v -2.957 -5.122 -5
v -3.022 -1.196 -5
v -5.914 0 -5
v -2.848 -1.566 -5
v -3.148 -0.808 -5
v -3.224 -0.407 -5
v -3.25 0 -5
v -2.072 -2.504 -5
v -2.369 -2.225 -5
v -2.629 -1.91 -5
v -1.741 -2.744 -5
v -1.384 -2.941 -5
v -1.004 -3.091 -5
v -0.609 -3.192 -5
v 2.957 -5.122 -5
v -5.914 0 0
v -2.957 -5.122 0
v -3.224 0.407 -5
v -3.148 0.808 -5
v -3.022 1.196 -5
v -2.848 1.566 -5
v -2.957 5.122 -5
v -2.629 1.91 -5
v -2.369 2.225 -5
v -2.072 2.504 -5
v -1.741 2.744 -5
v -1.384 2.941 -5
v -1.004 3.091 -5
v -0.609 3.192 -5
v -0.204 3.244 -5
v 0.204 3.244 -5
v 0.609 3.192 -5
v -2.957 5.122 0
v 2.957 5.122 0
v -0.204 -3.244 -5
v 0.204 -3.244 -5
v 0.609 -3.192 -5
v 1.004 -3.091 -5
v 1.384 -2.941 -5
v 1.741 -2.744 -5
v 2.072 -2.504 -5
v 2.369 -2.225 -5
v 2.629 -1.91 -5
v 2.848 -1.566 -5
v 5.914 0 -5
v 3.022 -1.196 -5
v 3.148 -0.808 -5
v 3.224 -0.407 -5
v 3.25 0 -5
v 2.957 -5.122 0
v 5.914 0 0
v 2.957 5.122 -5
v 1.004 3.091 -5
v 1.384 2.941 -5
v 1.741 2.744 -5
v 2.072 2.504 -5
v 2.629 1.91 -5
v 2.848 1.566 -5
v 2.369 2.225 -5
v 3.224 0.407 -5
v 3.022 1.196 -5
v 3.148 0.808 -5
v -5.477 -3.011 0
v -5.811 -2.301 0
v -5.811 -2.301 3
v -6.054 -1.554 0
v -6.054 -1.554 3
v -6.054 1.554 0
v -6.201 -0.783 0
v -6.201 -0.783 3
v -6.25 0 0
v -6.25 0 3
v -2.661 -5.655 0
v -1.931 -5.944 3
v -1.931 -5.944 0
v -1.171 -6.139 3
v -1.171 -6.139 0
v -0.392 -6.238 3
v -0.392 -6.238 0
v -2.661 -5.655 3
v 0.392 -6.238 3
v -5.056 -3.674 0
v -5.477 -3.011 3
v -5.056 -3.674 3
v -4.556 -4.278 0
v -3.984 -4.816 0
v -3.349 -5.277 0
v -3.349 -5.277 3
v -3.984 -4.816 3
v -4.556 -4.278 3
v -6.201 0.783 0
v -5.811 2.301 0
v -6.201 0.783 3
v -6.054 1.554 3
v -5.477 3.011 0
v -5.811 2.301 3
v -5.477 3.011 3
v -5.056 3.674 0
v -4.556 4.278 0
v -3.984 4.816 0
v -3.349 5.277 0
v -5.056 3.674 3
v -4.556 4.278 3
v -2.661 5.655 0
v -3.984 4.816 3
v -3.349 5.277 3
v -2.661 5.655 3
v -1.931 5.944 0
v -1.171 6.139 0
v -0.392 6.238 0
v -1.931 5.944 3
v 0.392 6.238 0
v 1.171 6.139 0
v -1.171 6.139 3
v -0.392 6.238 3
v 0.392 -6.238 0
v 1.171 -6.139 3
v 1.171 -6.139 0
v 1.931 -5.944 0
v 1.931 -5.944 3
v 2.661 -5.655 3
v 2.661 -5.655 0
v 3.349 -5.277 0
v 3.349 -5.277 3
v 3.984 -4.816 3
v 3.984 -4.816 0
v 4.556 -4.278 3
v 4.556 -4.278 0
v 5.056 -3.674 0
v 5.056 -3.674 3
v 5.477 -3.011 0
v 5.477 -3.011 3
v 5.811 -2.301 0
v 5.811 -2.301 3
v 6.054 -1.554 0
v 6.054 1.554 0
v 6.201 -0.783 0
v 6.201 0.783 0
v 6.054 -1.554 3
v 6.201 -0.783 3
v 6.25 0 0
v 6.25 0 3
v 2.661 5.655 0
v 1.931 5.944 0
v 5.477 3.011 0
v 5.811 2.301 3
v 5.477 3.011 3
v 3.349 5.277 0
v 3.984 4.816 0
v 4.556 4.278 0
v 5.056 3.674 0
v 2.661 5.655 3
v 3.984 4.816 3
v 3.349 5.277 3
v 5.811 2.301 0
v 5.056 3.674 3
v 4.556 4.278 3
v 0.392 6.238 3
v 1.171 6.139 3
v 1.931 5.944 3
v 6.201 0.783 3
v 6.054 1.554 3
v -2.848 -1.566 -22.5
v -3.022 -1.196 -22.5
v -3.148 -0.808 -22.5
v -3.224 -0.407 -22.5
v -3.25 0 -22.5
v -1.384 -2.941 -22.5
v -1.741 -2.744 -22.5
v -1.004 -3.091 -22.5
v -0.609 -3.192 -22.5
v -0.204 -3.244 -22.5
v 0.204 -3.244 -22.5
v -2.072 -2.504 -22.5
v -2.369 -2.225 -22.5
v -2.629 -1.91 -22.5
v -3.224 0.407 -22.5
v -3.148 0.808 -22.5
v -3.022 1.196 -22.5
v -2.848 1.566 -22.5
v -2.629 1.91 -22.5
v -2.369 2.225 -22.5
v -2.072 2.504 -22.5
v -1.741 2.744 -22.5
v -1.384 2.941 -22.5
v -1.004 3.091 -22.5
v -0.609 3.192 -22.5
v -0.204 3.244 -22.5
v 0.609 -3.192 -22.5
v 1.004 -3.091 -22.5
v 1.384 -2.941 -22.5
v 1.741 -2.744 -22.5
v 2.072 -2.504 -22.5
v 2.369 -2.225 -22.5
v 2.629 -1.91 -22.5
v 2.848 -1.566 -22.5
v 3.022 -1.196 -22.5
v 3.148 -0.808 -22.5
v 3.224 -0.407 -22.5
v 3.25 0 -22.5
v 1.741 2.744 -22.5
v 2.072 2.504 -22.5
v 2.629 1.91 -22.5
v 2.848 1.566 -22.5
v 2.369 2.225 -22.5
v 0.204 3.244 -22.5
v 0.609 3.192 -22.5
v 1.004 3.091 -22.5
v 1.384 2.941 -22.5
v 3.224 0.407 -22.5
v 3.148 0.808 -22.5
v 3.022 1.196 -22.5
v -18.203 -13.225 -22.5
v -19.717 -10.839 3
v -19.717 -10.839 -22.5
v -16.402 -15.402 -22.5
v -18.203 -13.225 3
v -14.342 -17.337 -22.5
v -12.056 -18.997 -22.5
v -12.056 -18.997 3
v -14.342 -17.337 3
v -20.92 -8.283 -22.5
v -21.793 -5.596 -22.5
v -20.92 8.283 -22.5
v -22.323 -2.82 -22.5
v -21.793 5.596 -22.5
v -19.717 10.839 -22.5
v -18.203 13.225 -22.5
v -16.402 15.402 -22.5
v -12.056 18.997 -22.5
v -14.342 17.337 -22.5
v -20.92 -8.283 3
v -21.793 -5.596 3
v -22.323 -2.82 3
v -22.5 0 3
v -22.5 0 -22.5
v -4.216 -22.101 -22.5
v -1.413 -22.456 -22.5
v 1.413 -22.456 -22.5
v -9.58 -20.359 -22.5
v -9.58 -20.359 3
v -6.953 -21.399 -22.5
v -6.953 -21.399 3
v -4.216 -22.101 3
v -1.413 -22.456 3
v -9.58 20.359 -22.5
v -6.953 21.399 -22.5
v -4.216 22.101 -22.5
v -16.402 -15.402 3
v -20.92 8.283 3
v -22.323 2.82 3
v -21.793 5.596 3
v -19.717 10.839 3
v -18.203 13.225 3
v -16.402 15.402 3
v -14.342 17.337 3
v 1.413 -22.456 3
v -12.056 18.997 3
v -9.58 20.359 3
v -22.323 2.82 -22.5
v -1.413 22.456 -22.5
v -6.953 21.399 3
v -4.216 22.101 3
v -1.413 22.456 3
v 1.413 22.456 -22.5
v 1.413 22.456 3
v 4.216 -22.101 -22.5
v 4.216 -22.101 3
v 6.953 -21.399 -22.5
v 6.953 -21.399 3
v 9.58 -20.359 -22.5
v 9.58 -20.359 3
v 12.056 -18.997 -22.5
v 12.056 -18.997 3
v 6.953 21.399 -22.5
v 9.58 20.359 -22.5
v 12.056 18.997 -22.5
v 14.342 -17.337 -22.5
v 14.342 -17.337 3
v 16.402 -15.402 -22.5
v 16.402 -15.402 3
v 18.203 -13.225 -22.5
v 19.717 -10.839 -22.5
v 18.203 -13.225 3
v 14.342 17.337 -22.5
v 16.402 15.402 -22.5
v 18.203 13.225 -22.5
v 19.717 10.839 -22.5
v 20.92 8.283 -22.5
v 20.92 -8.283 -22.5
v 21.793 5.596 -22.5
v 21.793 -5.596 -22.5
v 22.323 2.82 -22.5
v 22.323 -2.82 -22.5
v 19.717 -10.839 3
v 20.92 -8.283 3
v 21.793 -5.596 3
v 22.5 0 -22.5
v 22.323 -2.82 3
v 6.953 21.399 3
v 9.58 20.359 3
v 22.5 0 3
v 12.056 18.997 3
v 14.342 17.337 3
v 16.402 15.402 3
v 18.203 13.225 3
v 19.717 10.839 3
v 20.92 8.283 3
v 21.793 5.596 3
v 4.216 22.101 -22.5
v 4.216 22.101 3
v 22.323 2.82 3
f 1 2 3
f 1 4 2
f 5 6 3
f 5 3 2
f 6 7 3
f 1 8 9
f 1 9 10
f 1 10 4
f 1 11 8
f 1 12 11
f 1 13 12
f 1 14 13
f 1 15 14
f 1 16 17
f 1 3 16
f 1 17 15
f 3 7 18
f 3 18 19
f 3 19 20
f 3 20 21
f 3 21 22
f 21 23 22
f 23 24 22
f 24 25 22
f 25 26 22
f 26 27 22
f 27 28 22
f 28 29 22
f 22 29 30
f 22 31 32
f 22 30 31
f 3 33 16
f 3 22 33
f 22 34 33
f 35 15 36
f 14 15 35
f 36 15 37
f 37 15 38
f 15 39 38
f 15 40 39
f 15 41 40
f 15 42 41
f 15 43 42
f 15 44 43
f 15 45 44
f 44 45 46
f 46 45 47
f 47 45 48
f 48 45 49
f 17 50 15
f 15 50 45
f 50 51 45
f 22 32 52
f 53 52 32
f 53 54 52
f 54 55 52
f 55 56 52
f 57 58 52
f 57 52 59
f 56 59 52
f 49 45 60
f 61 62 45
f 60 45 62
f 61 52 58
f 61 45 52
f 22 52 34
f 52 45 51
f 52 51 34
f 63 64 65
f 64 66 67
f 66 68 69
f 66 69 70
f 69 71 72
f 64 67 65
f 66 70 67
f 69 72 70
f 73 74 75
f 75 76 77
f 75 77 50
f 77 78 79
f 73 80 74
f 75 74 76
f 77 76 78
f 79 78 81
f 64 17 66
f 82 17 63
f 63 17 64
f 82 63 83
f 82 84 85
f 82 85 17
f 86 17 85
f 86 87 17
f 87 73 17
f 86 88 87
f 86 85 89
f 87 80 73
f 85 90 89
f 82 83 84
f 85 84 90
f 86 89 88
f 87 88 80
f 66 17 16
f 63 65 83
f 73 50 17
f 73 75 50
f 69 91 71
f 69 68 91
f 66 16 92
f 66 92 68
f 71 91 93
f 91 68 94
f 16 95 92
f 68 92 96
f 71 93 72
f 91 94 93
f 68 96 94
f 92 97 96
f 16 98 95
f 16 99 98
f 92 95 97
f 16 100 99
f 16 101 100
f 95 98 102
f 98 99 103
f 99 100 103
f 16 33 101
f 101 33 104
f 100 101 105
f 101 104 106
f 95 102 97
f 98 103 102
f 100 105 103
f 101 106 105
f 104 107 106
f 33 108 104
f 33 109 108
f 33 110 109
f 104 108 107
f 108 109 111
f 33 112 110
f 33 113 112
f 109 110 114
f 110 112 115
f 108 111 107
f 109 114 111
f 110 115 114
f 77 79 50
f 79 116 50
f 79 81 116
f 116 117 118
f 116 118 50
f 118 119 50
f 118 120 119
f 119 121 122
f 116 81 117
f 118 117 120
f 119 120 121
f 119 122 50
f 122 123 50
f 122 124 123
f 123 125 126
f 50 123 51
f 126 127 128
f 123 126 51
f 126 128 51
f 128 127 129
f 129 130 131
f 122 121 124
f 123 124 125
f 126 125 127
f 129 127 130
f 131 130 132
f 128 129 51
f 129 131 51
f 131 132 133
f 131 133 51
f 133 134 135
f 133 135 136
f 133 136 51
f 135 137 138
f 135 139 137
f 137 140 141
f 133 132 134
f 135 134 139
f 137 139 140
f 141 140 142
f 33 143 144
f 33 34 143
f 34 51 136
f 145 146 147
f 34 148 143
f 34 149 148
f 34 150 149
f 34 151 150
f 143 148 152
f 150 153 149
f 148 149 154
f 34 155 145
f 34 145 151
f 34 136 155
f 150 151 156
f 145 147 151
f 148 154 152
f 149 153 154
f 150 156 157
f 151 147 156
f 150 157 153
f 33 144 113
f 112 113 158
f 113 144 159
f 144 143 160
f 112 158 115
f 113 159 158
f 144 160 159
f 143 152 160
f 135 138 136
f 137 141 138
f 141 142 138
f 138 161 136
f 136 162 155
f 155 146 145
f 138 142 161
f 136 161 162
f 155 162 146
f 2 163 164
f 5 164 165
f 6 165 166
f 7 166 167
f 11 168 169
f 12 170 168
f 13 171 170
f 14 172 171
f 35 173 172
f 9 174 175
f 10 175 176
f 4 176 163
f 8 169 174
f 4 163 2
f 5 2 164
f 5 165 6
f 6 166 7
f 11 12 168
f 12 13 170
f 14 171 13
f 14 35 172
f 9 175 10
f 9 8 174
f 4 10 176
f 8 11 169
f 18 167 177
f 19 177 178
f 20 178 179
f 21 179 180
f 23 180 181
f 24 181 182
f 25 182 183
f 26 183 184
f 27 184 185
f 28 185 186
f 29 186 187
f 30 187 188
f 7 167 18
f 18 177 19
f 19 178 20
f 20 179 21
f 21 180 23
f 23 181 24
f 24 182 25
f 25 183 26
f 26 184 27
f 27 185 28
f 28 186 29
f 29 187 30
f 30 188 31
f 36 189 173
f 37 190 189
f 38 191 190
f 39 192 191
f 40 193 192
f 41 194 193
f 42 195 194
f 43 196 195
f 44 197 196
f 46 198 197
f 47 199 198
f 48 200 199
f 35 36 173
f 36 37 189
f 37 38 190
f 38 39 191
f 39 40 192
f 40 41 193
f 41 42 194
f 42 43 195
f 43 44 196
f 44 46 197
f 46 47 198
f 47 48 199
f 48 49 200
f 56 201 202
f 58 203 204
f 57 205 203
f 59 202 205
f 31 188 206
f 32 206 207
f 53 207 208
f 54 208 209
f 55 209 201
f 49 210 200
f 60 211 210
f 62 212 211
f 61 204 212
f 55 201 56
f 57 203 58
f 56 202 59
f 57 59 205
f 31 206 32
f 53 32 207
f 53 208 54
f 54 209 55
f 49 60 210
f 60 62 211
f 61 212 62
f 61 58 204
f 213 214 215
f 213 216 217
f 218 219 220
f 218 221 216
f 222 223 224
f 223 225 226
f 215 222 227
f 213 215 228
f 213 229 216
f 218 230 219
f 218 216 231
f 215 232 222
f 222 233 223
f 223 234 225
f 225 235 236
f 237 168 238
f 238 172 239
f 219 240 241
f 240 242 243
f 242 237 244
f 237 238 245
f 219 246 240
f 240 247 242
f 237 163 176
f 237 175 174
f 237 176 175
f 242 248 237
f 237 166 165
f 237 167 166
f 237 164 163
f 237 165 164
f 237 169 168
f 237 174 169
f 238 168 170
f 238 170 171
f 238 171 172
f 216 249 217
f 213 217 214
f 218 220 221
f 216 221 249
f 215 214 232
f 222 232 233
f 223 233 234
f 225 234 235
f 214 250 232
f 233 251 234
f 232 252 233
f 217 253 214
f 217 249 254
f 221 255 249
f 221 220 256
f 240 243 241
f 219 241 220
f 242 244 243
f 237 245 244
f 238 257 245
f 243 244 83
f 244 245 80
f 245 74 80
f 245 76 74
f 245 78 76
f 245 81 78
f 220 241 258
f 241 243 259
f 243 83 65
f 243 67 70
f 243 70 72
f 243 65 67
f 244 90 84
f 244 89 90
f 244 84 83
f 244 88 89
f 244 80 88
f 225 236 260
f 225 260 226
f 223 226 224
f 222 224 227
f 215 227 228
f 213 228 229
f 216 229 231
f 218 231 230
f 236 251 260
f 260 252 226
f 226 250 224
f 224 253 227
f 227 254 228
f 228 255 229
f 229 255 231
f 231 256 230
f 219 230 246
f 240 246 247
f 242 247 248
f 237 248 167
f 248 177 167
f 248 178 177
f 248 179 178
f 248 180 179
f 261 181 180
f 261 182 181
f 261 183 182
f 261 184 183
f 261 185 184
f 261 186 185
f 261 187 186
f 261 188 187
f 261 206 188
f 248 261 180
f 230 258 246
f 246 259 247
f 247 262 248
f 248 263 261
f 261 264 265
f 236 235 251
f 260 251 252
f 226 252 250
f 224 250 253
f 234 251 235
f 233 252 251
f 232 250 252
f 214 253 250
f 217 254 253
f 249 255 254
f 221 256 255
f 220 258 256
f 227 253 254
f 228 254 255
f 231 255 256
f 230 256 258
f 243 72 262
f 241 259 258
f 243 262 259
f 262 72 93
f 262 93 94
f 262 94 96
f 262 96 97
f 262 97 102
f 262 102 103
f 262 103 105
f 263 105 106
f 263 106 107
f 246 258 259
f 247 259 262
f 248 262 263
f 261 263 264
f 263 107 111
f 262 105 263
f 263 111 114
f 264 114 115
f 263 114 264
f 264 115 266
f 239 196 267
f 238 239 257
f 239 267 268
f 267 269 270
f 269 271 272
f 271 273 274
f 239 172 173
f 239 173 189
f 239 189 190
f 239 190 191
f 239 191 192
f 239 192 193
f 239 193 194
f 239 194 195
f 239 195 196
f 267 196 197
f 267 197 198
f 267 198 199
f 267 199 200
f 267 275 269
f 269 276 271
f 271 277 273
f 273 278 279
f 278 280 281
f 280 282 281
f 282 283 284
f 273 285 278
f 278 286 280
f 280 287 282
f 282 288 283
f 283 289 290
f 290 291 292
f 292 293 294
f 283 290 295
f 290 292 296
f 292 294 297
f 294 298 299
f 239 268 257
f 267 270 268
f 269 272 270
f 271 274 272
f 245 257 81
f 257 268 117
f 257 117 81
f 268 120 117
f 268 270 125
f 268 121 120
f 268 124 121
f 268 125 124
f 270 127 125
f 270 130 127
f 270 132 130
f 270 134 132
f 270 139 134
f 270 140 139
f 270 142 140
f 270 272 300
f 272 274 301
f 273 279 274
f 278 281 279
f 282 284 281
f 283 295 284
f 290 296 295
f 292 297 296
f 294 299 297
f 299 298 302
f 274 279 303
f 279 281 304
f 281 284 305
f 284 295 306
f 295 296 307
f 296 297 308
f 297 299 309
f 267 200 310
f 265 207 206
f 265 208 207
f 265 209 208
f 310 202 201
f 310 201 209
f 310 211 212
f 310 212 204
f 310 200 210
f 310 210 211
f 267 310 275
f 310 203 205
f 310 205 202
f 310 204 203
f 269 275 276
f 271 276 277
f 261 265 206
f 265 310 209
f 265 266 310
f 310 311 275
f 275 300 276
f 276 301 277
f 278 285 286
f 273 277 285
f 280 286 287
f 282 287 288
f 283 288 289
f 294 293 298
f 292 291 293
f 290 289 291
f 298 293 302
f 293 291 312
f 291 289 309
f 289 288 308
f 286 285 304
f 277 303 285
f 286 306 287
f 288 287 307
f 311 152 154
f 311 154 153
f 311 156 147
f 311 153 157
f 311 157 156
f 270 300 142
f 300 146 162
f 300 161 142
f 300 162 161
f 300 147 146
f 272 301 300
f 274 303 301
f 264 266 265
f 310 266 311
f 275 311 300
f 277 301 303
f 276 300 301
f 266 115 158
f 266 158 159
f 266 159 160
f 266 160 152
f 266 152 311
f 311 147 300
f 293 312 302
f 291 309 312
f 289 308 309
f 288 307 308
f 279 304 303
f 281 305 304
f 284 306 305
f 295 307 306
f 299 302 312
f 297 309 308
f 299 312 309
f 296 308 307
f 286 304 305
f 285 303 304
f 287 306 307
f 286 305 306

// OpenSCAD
$fn = 50;

difference() {
	union() {
		translate(v = [0, 0, -22.5]) {
			cylinder(h = 25.5, r = 22.5);
		}
	}
	union() {
		translate(v = [0, 0, 0]) {
			rotate(a = [0, 0, 0]) {
				difference() {
					union() {
						translate(v = [0, 0, -5]) {
							linear_extrude(height = 5) {
								polygon(points = [[5.914249999999999, 0.0], [2.957125, 5.1218907443321156], [-2.9571249999999982, 5.1218907443321156], [-5.914249999999999, 7.242867331857232e-16], [-2.9571250000000022, -5.121890744332115], [2.9571249999999956, -5.121890744332118]]);
							}
						}
					}
					union();
				}
			}
		}
		#cylinder(h = 3, r = 6.25);
		#translate(v = [0, 0, -100.0]) {
			cylinder(h = 200, r = 3.25);
		}
	}
}
